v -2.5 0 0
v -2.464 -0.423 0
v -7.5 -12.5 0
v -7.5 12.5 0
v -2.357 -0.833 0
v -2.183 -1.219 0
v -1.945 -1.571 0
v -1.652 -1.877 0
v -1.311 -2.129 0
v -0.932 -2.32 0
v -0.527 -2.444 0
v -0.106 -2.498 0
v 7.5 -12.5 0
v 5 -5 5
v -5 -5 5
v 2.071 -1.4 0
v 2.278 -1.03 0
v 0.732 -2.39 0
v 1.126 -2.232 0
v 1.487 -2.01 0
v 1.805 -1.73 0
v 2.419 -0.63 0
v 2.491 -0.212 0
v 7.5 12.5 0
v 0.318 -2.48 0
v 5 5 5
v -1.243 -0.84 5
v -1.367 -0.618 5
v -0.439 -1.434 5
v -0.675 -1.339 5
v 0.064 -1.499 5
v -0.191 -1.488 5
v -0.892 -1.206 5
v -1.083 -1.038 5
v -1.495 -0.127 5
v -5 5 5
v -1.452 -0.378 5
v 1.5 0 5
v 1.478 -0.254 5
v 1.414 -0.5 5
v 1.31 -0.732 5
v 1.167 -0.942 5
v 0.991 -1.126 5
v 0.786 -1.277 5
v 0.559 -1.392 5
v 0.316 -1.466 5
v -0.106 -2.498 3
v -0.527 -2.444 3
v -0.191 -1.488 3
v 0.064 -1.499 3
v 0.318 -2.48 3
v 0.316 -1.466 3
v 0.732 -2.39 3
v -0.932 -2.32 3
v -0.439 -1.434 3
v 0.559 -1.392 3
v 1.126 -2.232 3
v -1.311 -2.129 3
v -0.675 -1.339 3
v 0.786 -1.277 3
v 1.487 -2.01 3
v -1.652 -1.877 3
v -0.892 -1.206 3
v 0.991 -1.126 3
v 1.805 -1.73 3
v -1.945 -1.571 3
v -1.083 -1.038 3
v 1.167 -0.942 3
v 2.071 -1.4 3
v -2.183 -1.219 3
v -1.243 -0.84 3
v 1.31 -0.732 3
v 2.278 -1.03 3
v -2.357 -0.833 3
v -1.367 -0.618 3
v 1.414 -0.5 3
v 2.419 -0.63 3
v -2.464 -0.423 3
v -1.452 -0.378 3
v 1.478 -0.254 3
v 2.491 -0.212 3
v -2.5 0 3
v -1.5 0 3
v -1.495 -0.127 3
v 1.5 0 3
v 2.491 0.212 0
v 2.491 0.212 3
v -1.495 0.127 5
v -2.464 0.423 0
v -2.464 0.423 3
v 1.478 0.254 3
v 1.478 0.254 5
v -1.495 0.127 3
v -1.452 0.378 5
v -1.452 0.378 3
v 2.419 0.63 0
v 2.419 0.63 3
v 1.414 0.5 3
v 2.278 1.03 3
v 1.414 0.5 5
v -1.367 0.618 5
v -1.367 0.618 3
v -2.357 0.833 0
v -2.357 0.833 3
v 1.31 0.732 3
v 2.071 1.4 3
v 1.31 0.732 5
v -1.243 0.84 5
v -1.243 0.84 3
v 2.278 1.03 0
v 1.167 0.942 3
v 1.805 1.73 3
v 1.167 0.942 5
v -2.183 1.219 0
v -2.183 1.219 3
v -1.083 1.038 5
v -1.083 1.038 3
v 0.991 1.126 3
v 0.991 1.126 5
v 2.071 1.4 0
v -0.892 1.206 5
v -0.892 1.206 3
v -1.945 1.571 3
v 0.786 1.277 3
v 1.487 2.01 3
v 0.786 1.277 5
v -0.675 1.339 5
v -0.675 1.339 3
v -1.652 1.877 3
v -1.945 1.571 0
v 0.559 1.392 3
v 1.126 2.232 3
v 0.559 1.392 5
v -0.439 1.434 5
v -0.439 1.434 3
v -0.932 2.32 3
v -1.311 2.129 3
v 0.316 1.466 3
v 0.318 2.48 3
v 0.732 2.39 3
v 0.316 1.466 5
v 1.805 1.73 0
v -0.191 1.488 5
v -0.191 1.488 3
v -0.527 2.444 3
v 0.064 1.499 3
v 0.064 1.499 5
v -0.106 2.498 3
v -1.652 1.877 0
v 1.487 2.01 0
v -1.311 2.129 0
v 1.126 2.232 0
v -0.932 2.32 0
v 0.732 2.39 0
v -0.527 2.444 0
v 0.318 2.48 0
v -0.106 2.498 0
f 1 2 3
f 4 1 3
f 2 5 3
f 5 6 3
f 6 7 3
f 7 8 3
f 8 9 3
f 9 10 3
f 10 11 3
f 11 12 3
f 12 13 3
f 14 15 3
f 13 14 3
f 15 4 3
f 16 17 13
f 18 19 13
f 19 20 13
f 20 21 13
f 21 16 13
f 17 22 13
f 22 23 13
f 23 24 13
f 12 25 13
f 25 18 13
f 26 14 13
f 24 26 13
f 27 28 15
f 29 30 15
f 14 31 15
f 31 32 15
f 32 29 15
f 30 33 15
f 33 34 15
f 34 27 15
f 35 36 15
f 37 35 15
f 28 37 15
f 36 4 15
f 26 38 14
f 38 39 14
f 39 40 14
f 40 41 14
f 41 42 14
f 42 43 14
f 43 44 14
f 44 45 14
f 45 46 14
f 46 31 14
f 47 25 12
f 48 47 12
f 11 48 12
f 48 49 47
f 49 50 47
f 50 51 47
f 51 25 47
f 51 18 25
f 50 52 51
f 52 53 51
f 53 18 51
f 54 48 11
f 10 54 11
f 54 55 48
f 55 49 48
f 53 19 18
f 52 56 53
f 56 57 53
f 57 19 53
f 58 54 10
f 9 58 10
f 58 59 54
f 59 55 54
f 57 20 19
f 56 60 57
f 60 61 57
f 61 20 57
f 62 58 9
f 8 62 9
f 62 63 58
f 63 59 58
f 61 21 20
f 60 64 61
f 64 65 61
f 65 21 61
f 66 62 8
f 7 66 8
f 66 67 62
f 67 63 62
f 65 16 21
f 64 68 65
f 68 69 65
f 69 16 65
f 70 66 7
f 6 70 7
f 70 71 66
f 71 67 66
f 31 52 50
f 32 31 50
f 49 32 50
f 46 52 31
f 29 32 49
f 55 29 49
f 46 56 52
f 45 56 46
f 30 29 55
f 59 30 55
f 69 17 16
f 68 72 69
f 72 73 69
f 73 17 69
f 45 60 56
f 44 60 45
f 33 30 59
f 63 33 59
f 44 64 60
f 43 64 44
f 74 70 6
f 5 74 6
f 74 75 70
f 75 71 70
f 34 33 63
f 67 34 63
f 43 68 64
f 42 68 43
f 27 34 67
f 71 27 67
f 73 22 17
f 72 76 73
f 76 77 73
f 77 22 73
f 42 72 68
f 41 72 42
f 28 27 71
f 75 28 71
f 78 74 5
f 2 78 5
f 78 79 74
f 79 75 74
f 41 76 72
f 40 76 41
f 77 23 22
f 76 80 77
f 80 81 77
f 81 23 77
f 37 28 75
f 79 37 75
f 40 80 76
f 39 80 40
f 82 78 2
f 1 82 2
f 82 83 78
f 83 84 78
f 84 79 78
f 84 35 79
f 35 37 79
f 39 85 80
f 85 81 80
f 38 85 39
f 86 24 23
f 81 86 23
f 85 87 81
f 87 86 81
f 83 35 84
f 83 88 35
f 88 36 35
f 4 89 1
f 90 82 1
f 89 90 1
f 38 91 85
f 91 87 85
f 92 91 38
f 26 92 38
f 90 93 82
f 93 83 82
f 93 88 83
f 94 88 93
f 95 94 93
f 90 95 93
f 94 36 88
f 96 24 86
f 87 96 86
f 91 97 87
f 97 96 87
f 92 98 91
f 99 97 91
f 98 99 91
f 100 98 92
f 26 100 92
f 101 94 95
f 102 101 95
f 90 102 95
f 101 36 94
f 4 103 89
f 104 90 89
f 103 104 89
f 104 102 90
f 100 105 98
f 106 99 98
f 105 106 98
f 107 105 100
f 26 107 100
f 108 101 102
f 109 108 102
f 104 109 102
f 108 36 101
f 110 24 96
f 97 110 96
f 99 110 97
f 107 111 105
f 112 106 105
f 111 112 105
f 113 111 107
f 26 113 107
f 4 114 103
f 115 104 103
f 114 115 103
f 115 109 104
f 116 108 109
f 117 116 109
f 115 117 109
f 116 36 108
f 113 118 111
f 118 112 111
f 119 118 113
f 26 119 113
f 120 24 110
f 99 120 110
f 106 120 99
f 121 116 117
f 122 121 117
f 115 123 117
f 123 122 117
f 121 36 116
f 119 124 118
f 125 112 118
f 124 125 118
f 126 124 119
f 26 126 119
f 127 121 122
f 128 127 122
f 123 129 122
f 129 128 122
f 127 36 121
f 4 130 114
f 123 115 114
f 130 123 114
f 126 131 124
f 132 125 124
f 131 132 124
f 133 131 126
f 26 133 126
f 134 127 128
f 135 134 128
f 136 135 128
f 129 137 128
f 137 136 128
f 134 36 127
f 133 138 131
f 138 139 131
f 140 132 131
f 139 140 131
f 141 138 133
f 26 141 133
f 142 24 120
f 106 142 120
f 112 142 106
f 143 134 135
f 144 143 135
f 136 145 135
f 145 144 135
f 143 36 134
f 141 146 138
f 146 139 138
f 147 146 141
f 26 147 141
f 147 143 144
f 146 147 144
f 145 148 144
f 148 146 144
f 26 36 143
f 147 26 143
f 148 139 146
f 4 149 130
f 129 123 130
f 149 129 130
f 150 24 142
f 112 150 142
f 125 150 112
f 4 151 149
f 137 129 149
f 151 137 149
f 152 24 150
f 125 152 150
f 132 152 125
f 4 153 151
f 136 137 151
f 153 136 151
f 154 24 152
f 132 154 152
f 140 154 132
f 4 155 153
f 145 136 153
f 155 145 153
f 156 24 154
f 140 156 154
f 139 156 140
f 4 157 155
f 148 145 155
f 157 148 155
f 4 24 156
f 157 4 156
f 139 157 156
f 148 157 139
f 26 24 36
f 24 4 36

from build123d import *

# Parameters (mm, degrees)
CROQUIS1_W            = 15
CROQUIS1_H            = 25
CROQUIS9_W            = 10
CROQUIS9_H            = 10
CROQUIS10_R           = 1.5
CORTAR_EXTRUIR1_DEPTH = 5
CROQUIS11_R           = 2.5
CORTAR_EXTRUIR2_DEPTH = 3


with BuildPart() as part:
    # Croquis1 → Recubrir1 section 0
    with BuildSketch(Plane.XY):
        Rectangle(CROQUIS1_W, CROQUIS1_H)
    # Croquis9 → Recubrir1 section 1
    with BuildSketch(Plane.XY.offset(5)):
        Rectangle(CROQUIS9_W, CROQUIS9_H)
    loft()

    # Croquis10 → Cortar-Extruir1 (cut)
    with BuildSketch(Plane.XY.offset(5)):
        Circle(CROQUIS10_R)
    extrude(amount=-CORTAR_EXTRUIR1_DEPTH, mode=Mode.SUBTRACT)

    # Croquis11 → Cortar-Extruir2 (cut)
    with BuildSketch(Plane(origin=(0, 0, 0), x_dir=(-1, 0, 0), z_dir=(0, 0, -1))):
        Circle(CROQUIS11_R)
    extrude(amount=-CORTAR_EXTRUIR2_DEPTH, mode=Mode.SUBTRACT)


solid = part.part
